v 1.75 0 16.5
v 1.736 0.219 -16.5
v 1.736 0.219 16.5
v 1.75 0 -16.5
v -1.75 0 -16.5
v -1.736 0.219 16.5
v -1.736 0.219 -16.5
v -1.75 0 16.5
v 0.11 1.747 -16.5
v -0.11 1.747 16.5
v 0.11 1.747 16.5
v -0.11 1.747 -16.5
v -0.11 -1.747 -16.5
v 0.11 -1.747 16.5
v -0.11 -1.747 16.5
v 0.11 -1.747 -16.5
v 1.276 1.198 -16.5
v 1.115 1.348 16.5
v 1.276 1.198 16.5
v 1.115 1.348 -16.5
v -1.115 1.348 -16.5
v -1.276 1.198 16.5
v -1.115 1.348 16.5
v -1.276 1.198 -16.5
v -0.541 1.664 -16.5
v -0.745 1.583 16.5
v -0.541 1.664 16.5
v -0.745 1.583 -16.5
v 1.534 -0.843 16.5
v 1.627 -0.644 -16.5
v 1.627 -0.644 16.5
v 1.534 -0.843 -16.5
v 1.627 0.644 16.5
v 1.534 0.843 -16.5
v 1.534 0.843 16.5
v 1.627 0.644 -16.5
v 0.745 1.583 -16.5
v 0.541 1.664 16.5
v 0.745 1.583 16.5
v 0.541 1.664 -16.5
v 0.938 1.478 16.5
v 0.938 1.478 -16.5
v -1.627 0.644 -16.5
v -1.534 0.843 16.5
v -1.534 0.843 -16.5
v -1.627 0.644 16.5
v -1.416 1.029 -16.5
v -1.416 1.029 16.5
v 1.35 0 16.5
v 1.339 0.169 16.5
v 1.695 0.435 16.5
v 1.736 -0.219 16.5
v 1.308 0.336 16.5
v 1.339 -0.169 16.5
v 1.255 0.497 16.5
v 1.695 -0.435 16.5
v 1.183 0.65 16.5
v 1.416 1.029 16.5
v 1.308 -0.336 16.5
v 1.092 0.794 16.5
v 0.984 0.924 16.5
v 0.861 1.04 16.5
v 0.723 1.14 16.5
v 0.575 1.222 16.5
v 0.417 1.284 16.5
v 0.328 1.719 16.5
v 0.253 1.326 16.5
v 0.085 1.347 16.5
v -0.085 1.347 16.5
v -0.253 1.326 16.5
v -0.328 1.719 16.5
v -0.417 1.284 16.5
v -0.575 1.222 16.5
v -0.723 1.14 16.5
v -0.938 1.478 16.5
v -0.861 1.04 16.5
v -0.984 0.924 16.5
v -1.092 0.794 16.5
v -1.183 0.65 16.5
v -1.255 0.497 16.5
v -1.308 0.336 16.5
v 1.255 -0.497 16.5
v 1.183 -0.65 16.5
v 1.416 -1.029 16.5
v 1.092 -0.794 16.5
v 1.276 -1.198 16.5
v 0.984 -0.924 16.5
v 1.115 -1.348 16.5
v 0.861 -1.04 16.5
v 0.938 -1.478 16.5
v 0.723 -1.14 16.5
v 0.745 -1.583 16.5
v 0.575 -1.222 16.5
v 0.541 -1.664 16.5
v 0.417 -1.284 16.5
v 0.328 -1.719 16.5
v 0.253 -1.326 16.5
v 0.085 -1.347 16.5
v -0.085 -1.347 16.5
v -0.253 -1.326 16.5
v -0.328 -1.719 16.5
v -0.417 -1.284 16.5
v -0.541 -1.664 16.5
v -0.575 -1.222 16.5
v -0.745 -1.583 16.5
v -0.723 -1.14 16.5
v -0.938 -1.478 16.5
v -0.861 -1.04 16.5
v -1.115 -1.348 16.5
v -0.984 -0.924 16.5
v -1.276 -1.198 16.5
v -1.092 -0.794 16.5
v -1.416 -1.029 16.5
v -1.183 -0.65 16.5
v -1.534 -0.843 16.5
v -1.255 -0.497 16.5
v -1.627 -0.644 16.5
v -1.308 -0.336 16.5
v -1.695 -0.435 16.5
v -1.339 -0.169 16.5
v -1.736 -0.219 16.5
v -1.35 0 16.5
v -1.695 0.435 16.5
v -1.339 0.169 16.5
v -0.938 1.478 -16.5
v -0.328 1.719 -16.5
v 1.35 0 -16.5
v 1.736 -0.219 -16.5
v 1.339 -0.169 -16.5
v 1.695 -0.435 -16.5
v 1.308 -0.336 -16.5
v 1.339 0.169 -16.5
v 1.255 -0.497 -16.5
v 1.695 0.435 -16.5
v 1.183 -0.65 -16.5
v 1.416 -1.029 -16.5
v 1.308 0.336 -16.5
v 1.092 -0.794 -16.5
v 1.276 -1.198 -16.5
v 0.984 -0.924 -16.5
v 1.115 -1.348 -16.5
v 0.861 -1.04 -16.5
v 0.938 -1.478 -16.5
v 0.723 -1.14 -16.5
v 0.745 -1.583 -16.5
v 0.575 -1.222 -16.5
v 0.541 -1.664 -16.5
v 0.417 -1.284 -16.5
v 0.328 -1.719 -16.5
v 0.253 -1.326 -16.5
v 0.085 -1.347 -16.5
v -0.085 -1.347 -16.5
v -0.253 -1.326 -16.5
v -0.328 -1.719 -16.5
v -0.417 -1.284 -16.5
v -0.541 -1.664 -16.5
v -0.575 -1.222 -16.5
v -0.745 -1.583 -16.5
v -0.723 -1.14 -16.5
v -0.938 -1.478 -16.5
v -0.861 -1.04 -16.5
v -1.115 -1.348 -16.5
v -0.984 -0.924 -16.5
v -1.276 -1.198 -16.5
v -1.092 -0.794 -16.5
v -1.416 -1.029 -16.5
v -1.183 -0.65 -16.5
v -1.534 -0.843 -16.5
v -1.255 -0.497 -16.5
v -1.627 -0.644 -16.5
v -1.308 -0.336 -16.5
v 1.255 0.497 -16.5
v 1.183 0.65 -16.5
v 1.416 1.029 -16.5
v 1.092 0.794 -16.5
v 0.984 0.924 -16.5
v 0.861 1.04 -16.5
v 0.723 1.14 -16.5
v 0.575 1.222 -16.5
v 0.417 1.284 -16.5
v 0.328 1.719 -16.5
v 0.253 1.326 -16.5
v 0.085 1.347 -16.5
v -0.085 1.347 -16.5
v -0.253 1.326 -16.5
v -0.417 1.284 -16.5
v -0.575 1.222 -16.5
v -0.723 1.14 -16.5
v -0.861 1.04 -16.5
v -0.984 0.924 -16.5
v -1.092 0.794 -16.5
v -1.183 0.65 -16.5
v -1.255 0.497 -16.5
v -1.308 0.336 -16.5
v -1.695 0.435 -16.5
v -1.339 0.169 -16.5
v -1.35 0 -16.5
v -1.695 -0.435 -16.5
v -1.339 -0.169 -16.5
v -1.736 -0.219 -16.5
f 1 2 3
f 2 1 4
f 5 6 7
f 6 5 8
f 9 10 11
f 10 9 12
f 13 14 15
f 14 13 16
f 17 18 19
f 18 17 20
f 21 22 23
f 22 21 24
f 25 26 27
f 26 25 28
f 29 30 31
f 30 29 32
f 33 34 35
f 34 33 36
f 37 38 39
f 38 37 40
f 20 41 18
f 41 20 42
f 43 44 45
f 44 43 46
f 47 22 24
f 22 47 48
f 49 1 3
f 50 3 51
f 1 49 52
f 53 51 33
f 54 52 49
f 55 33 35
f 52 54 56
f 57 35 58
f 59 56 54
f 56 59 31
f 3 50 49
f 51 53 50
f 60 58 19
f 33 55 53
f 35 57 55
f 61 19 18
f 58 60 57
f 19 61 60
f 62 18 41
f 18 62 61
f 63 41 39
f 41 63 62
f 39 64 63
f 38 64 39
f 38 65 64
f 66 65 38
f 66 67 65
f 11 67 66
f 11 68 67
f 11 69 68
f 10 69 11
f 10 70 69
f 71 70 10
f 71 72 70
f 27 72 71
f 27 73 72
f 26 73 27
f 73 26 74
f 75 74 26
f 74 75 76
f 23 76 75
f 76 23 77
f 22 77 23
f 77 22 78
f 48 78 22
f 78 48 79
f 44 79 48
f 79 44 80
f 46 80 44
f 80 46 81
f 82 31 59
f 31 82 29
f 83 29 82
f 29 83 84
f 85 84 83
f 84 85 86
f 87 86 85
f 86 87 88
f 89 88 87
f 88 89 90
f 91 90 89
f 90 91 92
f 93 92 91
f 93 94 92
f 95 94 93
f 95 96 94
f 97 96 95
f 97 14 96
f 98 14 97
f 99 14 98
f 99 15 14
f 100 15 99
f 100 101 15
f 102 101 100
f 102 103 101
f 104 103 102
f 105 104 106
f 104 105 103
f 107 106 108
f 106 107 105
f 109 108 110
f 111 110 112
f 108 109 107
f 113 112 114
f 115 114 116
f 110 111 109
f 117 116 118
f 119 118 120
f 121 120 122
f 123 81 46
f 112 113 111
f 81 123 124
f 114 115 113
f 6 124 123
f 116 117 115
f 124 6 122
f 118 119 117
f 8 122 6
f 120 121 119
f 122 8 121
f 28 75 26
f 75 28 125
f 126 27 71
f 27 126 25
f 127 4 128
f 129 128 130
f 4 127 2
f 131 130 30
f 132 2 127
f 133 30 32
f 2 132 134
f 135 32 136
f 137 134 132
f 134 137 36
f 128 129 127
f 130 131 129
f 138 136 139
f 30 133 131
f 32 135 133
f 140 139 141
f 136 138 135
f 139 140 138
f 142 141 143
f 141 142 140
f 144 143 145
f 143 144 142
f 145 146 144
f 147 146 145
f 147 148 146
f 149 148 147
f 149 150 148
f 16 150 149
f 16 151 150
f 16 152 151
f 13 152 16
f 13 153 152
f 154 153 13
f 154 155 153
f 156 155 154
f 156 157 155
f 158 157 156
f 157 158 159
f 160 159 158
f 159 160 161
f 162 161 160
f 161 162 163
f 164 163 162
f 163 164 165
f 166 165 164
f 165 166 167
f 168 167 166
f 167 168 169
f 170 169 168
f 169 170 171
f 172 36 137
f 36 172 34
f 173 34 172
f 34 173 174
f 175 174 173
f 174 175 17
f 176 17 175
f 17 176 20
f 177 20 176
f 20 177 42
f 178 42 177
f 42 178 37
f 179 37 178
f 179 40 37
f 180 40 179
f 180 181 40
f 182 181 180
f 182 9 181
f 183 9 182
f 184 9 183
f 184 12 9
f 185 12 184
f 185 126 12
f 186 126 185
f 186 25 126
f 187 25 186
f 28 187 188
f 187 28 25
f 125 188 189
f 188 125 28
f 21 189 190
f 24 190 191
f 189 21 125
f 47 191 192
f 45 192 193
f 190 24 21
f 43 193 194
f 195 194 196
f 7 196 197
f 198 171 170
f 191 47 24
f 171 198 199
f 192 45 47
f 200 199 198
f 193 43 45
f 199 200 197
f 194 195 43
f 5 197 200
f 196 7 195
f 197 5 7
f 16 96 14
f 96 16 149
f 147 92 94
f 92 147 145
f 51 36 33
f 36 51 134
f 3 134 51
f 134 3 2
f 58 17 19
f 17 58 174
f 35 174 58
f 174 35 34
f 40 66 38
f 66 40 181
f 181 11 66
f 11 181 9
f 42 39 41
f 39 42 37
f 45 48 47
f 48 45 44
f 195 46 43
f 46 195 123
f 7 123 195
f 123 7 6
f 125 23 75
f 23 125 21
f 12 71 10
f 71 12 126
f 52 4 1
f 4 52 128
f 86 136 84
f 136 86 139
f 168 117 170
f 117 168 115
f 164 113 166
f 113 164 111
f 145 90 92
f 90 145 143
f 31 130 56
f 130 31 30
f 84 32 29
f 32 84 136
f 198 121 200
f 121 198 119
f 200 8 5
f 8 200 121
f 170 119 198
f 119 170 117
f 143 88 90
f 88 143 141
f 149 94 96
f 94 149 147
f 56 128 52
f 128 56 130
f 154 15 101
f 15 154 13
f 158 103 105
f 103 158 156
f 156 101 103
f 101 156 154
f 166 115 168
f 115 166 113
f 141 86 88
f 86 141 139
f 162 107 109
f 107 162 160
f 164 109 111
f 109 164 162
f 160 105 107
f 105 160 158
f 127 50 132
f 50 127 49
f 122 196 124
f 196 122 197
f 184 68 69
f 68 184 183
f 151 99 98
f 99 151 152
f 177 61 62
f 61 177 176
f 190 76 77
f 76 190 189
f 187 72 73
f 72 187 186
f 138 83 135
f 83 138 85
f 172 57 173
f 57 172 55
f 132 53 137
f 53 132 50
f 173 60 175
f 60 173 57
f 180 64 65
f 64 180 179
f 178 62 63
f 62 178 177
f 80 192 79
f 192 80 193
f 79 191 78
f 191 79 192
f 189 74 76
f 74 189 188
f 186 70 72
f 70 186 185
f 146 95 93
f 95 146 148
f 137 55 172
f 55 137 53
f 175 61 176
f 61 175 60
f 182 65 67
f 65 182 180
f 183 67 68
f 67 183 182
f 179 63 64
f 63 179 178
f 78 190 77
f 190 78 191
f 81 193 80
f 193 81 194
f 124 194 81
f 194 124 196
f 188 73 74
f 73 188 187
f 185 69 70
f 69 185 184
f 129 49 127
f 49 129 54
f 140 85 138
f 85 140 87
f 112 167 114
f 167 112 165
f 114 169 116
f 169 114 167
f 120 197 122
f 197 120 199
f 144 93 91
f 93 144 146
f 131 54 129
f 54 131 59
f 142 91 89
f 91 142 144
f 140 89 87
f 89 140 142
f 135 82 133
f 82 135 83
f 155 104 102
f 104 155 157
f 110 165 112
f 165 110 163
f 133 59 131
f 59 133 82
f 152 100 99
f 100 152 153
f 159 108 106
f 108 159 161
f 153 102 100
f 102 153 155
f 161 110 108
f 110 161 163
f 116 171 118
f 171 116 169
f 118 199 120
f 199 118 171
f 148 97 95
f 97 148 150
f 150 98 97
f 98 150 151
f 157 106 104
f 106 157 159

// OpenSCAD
$fn = 50;


difference() {
	union() {
		translate(v = [0, 0, -16.5000000000]) {
			cylinder(h = 33, r = 1.7500000000);
		}
	}
	union() {
		translate(v = [0, 0, -100.0000000000]) {
			cylinder(h = 200, r = 1.3500000000);
		}
	}
}
